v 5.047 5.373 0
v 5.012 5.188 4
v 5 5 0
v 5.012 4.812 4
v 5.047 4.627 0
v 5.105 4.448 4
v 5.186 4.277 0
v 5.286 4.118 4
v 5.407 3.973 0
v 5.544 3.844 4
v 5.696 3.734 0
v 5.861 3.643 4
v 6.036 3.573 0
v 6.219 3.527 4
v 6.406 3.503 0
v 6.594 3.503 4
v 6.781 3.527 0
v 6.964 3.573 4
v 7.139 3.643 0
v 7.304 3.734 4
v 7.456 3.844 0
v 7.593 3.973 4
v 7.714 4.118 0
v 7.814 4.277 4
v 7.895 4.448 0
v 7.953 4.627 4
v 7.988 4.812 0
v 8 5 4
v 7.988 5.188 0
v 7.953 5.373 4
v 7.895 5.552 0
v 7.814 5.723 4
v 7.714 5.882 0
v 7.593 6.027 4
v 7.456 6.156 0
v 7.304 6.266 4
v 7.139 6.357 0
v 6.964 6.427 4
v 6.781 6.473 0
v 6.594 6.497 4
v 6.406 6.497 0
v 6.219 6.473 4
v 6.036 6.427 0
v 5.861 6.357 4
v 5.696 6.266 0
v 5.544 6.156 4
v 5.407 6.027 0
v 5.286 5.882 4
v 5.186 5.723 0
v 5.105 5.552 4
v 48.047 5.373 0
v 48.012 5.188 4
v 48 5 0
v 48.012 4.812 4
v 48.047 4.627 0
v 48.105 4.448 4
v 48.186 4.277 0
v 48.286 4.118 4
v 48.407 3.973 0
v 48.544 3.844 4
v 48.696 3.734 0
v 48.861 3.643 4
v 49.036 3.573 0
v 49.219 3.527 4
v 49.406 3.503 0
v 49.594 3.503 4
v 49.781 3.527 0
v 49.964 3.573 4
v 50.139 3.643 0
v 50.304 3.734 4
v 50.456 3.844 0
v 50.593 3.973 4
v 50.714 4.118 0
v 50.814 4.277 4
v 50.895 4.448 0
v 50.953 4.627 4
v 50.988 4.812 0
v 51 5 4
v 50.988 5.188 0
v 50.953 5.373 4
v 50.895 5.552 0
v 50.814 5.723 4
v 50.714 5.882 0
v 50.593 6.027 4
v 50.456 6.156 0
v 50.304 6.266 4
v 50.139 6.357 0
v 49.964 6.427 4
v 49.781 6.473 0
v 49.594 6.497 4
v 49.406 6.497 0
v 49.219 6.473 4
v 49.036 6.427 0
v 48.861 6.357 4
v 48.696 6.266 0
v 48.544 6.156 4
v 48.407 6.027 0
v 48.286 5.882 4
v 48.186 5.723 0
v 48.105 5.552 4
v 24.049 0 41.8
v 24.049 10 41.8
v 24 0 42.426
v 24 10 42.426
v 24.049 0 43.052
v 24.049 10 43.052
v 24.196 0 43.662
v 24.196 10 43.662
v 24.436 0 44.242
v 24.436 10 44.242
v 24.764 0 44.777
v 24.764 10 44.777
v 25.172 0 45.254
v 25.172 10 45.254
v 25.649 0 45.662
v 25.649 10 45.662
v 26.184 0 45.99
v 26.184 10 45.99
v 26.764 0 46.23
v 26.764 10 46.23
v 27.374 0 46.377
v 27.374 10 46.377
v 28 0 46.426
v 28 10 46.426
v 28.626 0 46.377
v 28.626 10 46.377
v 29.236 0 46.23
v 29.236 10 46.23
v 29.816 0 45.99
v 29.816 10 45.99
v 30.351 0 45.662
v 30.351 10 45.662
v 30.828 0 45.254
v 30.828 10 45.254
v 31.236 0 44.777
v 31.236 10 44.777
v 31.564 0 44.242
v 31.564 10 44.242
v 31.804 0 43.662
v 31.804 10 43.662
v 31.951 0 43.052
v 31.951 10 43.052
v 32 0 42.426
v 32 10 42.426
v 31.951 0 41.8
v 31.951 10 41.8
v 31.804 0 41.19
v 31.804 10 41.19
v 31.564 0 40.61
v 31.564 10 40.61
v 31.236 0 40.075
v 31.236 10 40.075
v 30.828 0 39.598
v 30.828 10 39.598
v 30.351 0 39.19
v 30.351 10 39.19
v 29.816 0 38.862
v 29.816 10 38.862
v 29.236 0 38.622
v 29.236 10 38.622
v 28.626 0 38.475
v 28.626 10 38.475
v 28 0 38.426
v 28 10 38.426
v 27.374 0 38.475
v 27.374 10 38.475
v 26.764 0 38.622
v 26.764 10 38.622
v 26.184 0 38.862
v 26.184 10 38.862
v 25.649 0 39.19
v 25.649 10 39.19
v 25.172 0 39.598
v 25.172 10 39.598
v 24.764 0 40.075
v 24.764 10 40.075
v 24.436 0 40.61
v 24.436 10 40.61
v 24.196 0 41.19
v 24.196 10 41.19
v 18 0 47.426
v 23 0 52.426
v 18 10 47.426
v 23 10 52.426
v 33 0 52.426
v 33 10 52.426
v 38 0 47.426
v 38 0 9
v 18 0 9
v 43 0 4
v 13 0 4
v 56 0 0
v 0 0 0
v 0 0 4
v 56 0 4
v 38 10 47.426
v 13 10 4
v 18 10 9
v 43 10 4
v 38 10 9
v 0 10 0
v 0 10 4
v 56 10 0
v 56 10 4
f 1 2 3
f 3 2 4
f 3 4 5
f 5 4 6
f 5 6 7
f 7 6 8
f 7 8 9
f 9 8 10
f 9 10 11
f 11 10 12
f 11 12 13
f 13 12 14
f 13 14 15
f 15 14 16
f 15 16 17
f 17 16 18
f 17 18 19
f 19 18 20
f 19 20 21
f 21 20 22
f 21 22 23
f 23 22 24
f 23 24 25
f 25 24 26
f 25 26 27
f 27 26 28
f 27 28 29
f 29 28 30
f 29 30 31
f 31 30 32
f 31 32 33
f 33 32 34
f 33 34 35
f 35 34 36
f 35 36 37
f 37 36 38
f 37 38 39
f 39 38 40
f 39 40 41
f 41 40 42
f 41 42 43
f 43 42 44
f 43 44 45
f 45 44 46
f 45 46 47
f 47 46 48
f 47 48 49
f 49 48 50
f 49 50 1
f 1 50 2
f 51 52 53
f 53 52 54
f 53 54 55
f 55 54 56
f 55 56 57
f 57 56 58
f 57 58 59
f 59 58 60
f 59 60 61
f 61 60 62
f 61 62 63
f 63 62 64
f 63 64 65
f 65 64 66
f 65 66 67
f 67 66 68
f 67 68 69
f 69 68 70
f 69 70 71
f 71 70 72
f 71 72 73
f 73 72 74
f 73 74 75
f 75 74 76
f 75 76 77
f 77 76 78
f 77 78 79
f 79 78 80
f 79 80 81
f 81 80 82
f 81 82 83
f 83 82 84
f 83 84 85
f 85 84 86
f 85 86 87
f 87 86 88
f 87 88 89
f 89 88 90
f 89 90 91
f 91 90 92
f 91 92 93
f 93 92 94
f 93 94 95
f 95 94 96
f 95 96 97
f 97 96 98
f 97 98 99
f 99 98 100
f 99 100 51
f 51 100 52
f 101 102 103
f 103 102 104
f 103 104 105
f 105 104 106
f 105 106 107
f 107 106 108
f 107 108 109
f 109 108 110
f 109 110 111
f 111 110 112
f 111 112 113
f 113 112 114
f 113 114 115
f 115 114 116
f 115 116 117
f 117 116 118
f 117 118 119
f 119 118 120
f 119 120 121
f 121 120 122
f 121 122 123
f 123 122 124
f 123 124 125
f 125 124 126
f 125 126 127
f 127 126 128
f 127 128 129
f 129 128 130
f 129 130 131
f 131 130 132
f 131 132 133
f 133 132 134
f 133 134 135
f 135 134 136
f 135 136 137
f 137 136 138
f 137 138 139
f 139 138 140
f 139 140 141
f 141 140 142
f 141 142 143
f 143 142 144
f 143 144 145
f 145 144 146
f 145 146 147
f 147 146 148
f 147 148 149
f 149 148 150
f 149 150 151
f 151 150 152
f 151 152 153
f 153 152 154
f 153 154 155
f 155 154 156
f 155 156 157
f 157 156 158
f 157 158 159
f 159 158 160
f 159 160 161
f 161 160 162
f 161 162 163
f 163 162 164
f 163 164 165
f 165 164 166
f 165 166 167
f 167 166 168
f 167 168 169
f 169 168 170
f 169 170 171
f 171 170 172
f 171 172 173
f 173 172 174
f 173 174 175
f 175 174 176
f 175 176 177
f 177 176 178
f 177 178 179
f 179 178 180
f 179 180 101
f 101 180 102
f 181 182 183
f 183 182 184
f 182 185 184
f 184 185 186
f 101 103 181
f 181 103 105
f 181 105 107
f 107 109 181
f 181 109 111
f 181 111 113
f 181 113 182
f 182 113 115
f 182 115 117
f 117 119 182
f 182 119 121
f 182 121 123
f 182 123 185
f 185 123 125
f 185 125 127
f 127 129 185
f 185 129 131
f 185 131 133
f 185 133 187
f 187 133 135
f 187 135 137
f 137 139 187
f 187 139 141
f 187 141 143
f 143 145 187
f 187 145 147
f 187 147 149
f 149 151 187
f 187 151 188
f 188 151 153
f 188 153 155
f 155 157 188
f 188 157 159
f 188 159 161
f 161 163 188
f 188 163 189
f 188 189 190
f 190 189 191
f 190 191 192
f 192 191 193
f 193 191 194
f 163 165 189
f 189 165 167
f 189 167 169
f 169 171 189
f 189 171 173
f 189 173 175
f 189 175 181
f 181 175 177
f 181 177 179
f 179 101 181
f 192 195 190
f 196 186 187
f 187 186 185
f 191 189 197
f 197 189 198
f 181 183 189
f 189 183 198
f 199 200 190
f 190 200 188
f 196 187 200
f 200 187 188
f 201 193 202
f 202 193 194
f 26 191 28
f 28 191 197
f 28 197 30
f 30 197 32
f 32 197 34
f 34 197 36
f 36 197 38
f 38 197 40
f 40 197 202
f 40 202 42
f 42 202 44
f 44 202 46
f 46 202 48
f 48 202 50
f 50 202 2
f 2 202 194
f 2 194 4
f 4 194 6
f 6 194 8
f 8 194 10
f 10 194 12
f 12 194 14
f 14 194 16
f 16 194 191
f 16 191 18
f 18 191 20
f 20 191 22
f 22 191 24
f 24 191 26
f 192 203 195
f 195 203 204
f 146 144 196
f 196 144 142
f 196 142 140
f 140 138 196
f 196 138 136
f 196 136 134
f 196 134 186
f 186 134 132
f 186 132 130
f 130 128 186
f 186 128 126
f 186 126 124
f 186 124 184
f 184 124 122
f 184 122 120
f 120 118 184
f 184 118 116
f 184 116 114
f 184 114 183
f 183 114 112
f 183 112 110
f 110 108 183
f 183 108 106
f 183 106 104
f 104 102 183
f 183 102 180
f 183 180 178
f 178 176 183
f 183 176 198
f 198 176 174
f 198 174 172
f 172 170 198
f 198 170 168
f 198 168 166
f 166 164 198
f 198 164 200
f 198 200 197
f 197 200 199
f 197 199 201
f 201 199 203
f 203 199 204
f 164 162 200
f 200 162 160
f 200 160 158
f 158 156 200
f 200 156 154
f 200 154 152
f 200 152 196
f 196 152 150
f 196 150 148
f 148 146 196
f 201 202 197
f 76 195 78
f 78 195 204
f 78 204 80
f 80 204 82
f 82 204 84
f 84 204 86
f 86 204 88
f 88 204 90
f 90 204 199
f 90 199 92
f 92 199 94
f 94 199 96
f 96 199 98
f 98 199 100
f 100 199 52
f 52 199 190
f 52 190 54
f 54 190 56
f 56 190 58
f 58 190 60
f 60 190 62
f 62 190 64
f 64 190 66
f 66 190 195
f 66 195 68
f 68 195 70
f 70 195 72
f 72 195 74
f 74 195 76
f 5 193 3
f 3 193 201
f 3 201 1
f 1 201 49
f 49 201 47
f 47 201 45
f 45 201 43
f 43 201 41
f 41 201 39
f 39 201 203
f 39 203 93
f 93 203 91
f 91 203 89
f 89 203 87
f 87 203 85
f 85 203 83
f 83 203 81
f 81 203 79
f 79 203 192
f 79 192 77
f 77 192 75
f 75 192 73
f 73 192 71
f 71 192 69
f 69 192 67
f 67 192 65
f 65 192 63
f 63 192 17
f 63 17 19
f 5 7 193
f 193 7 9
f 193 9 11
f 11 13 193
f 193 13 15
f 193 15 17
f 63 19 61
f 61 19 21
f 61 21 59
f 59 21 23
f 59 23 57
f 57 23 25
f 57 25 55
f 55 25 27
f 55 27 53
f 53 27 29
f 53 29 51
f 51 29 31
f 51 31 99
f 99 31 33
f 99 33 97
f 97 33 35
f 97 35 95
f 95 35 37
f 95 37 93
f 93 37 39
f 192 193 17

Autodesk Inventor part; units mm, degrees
ref_plane "YZ Plane" through (0, 0, 0) normal (1, 0, 0) x (0, 1, 0)
ref_plane "XZ Plane" through (0, 0, 0) normal (0, 1, 0) x (-1, 0, 0)
ref_plane "XY Plane" through (0, 0, 0) normal (0, 0, 1) x (1, 0, 0)
sketch "Esboço1" plane through (0, 0, 0) normal (0, 0, 1) x (1, 0, 0)
  line L0 (0, 0) -> (56, 0)
  line L1 (56, 0) -> (56, 10)
  line L2 (56, 10) -> (0, 10)
  line L3 (0, 10) -> (0, 0)
  line L4 (18, 10) -> (38, 10)
  line L5 (38, 10) -> (38, 0)
  line L6 (38, 0) -> (18, 0)
  line L7 (18, 0) -> (18, 10)
  line L8 (18, 10) -> (38, 0) construction
  line L9 (38, 10) -> (18, 0) construction
  point P0 (28, 5)
  dimension "d0" = 56
  dimension "d1" = 10
  dimension "d2" = 20
extrude "Extrusão1" add sketch "Esboço1" along normal blind 4 contours L3 L2 L7 L0 | L5 L2 L1 L0
extrude "Extrusão2" add sketch "Esboço1" along normal blind 52.426 contours L7 L2 L5 L0
chamfer "Chanfro1" distance 5 angle 45 4 edges at (38, 5, 4) (18, 5, 4) (38, 5, 52.426) (18, 5, 52.426)
sketch "Esboço2" plane through (0, 10, 0) normal (0, 1, 0) x (1, 0, 0)
  line L0 (33, -52.426) -> (23, -52.426) projected
  point P0 (0, 0)
  point P1 (28, -42.426)
  dimension "d24" = 10
hole "Furo1" at (28, 10, 42.426) direction (0, -1, 0) diameter 8 end through all
sketch "Esboço3" plane through (0, 0, 4) normal (0, 0, 1) x (1, 0, 0)
  point P0 (0, 0)
  point P1 (6.5, 5)
  point P2 (49.5, 5)
hole "Furo2" at (6.5, 5, 4) at (49.5, 5, 4) direction (0, 0, -1) diameter 3 end through all
properties part number "suporte barra_3DPrint"
